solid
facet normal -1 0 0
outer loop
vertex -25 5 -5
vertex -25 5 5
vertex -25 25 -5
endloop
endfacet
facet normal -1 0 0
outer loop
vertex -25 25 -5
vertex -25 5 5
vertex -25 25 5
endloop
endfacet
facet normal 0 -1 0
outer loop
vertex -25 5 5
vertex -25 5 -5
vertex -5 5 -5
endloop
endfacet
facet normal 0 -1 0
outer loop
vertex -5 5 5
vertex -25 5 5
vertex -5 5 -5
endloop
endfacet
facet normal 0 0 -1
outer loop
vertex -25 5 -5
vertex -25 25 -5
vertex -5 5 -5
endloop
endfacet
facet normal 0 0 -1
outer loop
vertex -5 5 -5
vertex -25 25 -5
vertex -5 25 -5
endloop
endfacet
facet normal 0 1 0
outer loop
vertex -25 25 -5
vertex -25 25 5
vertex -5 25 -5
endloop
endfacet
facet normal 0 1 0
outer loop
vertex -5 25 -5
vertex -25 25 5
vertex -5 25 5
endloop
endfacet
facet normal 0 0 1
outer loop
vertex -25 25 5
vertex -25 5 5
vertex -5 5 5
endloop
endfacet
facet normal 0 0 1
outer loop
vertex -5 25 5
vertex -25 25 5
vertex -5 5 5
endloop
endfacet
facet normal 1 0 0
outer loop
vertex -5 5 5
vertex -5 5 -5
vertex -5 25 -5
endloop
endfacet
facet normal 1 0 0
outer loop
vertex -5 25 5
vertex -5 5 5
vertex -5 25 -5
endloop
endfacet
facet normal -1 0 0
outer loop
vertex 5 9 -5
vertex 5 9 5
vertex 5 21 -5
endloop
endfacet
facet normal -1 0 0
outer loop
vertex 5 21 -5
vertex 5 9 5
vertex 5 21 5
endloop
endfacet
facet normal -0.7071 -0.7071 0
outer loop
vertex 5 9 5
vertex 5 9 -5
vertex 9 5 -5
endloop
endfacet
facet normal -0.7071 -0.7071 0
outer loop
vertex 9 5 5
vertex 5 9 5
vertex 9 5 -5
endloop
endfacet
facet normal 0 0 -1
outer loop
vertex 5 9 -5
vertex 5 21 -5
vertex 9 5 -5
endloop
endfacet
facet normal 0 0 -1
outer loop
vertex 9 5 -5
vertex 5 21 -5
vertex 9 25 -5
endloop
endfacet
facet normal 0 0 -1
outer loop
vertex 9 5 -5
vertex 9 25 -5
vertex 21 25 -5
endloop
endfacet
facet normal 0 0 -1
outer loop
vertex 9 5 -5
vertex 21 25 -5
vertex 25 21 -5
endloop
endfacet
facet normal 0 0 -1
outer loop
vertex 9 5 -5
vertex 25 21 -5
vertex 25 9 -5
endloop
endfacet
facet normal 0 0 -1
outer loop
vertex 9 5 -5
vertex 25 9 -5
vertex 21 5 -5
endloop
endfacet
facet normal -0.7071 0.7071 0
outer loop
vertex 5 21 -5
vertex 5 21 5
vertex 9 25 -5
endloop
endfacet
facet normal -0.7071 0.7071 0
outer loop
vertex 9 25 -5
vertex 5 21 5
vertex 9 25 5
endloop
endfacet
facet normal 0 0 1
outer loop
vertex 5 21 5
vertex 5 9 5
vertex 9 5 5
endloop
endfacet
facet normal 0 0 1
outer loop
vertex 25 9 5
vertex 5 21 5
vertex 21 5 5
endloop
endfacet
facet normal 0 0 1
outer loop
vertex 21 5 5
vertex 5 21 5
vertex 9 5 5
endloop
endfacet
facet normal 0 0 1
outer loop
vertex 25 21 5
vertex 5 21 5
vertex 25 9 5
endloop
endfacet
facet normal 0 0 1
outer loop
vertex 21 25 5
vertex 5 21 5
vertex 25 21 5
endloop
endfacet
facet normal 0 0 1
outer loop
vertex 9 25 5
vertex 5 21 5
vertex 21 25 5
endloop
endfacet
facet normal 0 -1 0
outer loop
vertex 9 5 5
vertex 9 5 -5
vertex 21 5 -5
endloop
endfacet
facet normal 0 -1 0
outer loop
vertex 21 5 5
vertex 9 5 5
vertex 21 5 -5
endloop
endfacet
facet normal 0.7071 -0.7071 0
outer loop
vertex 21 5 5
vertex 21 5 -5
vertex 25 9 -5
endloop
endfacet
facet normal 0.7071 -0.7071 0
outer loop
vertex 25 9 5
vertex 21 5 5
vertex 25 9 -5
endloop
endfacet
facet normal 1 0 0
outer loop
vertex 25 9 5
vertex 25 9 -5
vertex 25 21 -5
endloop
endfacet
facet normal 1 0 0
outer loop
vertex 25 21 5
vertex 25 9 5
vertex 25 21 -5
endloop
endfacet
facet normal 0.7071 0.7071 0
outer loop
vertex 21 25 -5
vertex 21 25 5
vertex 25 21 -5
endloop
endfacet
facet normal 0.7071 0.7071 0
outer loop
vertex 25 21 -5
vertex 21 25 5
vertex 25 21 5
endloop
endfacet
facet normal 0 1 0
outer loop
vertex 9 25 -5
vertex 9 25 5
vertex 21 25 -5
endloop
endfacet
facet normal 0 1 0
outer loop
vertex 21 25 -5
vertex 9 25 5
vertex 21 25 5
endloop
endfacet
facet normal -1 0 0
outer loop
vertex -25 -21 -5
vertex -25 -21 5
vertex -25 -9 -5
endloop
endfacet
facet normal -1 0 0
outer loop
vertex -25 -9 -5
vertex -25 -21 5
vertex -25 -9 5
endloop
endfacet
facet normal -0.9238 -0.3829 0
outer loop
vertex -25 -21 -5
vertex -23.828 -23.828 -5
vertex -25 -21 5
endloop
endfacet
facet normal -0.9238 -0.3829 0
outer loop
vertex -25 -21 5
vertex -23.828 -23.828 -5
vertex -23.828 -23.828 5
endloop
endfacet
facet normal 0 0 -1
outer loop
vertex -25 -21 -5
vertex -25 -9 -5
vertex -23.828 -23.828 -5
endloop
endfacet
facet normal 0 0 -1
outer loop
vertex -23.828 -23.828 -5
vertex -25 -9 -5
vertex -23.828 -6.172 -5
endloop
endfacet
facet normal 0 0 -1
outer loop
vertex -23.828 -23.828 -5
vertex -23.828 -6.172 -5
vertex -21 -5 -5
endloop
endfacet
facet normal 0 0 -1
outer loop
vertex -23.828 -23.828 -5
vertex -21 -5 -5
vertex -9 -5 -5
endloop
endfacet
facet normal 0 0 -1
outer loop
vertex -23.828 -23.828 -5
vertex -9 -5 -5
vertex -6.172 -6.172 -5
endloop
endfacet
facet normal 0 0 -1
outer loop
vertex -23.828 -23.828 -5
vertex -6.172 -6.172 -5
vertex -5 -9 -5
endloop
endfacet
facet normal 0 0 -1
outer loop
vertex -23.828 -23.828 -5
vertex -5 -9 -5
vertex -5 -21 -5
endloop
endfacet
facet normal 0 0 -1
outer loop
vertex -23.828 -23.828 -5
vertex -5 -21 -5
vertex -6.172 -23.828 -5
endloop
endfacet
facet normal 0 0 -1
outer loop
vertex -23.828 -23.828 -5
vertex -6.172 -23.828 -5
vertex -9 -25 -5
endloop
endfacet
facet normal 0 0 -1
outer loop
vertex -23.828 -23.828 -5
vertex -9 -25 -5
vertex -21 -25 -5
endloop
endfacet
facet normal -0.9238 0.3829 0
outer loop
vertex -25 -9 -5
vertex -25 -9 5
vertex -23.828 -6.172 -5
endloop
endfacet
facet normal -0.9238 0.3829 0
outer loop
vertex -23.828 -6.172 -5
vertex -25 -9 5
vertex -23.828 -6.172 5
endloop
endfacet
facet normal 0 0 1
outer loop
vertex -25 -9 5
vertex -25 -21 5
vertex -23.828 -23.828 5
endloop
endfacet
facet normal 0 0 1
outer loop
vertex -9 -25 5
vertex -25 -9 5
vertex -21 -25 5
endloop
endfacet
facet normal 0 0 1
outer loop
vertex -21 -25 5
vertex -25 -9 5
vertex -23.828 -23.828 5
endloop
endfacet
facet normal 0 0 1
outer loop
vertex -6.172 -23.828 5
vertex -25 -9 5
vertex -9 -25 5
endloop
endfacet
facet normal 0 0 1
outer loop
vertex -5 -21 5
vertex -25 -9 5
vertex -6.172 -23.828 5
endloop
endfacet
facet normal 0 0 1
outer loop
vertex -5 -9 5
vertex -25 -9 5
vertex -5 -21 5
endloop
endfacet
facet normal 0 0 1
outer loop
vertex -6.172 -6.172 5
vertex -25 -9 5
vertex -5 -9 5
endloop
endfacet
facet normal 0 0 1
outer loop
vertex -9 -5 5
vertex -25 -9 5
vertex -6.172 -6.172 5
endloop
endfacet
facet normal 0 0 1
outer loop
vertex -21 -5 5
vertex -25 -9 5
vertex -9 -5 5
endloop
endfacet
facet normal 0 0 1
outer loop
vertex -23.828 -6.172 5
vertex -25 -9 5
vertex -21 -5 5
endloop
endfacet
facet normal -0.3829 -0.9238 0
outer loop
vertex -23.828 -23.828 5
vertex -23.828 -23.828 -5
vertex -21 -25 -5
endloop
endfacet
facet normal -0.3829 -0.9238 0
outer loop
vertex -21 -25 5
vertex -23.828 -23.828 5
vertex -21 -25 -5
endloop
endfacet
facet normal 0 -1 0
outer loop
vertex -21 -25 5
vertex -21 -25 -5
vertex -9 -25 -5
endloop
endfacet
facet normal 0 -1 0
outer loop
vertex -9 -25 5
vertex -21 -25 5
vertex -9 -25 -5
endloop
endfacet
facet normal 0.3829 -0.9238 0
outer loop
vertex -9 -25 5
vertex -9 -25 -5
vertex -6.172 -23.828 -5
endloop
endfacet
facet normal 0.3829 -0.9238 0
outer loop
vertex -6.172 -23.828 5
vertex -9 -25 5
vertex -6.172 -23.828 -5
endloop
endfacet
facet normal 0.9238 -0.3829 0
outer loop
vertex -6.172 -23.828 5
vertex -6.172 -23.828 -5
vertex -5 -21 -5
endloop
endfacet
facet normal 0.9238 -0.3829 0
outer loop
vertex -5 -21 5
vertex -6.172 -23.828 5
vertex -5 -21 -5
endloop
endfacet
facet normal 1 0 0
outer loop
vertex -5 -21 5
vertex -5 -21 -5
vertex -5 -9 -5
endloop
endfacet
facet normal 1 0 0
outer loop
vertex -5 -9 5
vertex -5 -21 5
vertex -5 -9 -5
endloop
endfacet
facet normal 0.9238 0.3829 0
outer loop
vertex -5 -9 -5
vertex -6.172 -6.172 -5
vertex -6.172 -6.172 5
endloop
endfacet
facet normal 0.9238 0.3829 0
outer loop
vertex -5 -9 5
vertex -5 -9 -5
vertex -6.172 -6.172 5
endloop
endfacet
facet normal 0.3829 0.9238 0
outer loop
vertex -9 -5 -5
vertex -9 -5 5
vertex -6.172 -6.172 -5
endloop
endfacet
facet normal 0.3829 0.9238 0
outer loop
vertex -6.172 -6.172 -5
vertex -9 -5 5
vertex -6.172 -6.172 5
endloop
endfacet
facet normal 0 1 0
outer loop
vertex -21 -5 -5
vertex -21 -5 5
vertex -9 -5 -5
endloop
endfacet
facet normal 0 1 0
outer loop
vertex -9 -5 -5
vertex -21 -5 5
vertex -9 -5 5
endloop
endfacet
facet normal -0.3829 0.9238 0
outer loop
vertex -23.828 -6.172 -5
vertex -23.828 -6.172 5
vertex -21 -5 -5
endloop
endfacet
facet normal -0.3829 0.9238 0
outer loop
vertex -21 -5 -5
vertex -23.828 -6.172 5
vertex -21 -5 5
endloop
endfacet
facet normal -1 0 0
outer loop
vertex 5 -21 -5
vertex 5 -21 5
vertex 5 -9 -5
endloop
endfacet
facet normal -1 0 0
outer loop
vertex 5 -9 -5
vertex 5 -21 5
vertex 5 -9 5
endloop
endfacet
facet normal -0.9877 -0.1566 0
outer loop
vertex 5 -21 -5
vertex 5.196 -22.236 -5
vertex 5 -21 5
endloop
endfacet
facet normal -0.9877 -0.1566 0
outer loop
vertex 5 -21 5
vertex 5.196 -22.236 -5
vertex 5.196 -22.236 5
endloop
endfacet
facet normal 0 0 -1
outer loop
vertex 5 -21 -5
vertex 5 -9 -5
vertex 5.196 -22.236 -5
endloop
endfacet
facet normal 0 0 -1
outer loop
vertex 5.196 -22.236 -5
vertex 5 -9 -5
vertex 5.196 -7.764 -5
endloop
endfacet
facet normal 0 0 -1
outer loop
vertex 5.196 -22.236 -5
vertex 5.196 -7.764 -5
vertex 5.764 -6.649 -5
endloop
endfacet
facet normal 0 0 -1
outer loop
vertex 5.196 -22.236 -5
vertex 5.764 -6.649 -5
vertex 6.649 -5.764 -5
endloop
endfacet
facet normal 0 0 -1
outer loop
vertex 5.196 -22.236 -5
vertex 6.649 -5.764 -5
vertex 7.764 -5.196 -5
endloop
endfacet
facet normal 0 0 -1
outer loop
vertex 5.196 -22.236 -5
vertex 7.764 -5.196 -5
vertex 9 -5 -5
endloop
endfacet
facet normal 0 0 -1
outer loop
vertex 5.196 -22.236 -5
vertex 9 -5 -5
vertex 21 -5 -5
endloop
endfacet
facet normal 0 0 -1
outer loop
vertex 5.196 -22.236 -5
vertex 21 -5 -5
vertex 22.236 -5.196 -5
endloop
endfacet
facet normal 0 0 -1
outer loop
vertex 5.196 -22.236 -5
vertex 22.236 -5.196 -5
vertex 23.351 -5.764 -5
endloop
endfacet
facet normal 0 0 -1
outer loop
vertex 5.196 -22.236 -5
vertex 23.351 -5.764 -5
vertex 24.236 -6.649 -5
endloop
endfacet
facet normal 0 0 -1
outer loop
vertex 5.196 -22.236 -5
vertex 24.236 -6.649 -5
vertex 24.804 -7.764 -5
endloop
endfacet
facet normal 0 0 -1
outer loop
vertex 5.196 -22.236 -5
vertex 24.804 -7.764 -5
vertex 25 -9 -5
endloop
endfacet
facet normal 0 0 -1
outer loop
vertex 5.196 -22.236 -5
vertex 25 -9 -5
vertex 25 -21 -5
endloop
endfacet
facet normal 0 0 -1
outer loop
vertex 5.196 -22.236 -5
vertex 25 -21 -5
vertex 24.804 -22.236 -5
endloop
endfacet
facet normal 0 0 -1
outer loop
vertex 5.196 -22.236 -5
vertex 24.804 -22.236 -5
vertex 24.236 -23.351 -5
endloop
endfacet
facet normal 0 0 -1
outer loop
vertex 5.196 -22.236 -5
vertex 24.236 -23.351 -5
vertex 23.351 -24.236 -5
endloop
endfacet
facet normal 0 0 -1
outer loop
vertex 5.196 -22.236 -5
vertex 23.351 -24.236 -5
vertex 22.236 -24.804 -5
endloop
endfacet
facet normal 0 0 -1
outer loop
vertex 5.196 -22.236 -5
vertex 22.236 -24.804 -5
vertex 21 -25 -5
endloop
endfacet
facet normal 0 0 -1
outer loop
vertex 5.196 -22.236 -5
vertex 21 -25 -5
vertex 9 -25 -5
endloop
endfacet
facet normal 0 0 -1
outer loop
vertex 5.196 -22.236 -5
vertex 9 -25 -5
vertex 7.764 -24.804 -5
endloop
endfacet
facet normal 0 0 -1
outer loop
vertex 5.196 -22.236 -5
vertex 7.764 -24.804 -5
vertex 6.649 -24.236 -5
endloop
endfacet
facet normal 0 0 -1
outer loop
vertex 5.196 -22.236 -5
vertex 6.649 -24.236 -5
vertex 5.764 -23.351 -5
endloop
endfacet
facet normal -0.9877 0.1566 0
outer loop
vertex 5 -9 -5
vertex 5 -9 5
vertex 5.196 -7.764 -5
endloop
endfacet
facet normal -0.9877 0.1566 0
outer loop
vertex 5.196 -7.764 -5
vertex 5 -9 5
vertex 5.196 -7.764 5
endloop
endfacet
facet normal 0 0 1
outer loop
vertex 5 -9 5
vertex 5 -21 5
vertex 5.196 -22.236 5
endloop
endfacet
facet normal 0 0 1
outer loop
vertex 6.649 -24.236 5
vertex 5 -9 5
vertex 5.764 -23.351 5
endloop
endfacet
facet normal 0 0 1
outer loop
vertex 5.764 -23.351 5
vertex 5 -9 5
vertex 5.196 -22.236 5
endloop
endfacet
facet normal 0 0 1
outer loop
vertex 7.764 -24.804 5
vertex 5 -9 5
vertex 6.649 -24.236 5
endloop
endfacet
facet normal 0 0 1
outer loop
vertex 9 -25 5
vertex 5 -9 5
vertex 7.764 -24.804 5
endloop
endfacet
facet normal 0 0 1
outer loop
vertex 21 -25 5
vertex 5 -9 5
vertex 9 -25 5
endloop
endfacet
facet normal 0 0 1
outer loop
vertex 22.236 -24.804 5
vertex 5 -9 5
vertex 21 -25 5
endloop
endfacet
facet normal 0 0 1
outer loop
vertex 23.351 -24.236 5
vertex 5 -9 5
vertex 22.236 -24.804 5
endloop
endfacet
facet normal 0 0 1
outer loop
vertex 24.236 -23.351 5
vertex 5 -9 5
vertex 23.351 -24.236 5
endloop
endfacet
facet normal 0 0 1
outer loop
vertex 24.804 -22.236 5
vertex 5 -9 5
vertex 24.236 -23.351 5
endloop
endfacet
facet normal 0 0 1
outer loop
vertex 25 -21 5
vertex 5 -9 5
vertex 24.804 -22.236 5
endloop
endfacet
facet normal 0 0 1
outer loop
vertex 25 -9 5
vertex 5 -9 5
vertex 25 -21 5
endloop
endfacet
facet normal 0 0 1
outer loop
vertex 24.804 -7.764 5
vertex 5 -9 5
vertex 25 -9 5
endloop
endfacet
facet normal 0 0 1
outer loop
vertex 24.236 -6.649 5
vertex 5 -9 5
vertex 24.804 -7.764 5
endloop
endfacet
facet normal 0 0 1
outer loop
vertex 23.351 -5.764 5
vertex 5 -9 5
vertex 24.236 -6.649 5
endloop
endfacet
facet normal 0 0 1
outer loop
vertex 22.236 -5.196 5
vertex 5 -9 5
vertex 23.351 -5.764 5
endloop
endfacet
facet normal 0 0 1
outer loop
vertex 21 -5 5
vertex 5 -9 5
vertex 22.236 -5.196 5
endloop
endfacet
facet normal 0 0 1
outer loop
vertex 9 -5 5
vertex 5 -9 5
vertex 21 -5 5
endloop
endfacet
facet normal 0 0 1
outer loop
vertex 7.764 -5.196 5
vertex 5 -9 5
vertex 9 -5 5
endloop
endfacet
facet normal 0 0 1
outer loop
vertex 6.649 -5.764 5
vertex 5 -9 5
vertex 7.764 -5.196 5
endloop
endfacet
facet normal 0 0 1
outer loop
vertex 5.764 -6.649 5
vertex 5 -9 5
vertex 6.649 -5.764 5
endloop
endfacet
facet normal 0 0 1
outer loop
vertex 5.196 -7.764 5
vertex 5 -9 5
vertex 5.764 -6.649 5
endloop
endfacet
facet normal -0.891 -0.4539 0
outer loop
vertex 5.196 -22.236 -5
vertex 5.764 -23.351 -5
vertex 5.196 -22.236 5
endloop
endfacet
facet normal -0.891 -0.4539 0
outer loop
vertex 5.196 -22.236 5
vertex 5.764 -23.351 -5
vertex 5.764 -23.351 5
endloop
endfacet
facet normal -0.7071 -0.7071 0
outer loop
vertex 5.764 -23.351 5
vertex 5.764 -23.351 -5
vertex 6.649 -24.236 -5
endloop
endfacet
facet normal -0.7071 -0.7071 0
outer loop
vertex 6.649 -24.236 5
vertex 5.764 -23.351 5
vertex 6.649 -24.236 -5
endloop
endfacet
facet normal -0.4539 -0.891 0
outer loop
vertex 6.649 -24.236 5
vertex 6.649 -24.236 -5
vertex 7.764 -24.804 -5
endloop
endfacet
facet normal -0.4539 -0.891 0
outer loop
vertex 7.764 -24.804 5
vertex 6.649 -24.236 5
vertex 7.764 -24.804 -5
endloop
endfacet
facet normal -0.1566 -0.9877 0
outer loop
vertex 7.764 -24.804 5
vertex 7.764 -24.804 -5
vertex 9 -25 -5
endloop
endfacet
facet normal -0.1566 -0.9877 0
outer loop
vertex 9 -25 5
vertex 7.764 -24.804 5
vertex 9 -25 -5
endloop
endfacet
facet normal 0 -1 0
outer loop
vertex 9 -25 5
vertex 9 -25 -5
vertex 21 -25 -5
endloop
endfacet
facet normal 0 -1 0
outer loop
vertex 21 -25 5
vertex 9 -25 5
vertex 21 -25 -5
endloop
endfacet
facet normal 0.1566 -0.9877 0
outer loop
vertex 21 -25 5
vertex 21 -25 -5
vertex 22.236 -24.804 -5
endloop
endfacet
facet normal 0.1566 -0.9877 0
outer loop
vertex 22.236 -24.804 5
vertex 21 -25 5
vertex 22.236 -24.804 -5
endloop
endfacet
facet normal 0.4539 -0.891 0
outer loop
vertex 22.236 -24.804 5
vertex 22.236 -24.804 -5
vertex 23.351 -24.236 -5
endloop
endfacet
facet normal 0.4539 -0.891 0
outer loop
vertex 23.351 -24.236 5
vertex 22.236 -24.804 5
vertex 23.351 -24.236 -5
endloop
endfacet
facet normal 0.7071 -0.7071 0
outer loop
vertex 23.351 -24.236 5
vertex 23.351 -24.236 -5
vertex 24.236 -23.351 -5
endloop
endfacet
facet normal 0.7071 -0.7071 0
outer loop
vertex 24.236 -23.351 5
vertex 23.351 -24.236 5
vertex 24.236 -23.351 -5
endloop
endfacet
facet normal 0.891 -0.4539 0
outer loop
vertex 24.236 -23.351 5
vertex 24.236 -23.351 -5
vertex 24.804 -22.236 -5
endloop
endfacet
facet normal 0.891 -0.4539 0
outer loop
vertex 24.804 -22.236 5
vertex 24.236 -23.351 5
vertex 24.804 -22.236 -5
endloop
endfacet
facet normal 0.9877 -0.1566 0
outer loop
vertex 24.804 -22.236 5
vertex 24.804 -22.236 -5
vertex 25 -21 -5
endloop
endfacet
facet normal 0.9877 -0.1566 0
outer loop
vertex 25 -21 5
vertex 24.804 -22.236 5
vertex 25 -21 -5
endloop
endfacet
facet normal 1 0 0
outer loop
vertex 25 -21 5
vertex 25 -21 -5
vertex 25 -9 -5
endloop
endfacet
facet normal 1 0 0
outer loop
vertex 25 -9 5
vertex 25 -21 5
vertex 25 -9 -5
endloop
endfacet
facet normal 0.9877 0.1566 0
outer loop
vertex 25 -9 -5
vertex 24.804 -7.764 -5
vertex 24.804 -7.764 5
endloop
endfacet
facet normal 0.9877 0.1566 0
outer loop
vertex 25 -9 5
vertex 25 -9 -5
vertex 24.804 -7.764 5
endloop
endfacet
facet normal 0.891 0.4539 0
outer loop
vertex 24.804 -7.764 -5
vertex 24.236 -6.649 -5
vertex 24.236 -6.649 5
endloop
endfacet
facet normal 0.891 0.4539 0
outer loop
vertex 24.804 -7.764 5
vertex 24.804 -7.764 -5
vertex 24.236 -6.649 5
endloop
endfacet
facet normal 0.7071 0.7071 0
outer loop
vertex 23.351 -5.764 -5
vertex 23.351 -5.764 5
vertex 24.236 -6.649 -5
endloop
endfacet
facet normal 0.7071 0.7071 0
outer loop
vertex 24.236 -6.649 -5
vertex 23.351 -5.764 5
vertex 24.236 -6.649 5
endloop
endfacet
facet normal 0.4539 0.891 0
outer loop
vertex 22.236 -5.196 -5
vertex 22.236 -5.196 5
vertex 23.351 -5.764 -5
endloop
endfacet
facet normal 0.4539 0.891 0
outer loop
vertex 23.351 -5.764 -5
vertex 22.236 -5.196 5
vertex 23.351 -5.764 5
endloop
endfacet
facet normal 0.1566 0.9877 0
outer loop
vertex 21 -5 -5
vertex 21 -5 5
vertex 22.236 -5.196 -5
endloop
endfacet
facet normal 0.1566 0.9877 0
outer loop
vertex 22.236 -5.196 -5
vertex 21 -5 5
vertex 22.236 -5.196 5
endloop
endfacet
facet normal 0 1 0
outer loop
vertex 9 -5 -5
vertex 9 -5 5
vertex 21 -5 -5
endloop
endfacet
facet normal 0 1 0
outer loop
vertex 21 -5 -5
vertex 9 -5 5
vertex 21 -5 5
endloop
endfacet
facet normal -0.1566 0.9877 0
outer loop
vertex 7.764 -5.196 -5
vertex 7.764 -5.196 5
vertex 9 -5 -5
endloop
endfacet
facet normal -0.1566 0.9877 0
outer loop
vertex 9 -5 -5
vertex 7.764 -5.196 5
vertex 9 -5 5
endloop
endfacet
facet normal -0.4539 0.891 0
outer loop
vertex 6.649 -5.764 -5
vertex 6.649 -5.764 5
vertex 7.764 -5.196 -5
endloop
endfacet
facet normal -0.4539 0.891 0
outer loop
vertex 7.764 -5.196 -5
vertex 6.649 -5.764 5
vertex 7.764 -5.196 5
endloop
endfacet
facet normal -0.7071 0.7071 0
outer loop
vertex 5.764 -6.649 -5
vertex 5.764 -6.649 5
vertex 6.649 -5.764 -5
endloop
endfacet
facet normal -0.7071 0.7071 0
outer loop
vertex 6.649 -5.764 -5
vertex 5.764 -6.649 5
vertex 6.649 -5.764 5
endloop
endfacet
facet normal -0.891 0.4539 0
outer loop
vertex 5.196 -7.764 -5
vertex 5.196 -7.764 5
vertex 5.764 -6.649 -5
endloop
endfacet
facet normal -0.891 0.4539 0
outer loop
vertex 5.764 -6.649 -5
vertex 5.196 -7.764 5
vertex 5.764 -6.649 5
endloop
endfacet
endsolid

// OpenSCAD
// file: obiscad/bcube.scad
//------------------------------------------------------------------------------
//  Bevel edge cube.
//  (c) Juan Gonzalez-Gomez (Obijuan), Sep-2012
//------------------------------------------------------------------------------

//----------------- IMPLEMENTATION USING THE MINKOWSKI OPERATOR ----------------

//------------------------------------------------------------------------------
//-- Bevel Cube main function
//-- Parameters:
//--   * Size:  Cube size
//--   * cr : Corner radius (if cr==0, a standar cube is built)
//--   * cres:  Corner resolution (in points). cres=0 means flat corners
//------------------------------------------------------------------------------
module bcube(size,cr=0,cres=0)
{
  //-- Internal cube size
  bsize = size - 2*[cr,cr,0];

  //-- Get the (x,y) coorner coordinates in the 1st cuadrant
  x = bsize[0]/2;
  y = bsize[1]/2;

  //-- A corner radius of 0 means a standar cube!
  if (cr==0)
    cube(bsize,center=true);
  else {

      
      //-- The height of minkowski object is double. So
      //-- we sould scale by 0.5
      scale([1,1,0.5])

      //-- This translation is for centering the minkowski objet
      translate([-x, -y,0])

      //-- Built the  beveled cube with minkowski
      minkowski() {

        //-- Internal cube
        cube(bsize,center=true);

        //-- Cylinder in the corner (1st cuadrant)
        translate([x,y, 0])
          cylinder(r=cr, h=bsize[2],center=true, $fn=4*(cres+1));
      }
  }

}


//-- Examples of use of the bcube() module

//-- Standar cube
translate([-15,15,0])
bcube([20,20,10]);

//-- Beveled cube (0 point resolution)
translate([15,15,0])
  bcube([20,20,10],cr=4);

//-- Beveled cube (1 point resolution)
translate([-15,-15,0])
  bcube([20,20,10],cr=4, cres=1);

//-- Beveled cube (4 points resolution)
translate([15,-15,0])
  bcube([20,20,10],cr=4, cres=4);
// main file
use <obiscad/bcube.scad>

//-- Examples of use of the bcube() module

//-- Standar cube
translate([-15,15,0])
bcube([20,20,10]);

//-- Beveled cube (0 point resolution)
translate([15,15,0])
  bcube([20,20,10],cr=4);

//-- Beveled cube (1 point resolution)
translate([-15,-15,0])
  bcube([20,20,10],cr=4, cres=1);

//-- Beveled cube (4 points resolution)
translate([15,-15,0])
  bcube([20,20,10],cr=4, cres=4);
